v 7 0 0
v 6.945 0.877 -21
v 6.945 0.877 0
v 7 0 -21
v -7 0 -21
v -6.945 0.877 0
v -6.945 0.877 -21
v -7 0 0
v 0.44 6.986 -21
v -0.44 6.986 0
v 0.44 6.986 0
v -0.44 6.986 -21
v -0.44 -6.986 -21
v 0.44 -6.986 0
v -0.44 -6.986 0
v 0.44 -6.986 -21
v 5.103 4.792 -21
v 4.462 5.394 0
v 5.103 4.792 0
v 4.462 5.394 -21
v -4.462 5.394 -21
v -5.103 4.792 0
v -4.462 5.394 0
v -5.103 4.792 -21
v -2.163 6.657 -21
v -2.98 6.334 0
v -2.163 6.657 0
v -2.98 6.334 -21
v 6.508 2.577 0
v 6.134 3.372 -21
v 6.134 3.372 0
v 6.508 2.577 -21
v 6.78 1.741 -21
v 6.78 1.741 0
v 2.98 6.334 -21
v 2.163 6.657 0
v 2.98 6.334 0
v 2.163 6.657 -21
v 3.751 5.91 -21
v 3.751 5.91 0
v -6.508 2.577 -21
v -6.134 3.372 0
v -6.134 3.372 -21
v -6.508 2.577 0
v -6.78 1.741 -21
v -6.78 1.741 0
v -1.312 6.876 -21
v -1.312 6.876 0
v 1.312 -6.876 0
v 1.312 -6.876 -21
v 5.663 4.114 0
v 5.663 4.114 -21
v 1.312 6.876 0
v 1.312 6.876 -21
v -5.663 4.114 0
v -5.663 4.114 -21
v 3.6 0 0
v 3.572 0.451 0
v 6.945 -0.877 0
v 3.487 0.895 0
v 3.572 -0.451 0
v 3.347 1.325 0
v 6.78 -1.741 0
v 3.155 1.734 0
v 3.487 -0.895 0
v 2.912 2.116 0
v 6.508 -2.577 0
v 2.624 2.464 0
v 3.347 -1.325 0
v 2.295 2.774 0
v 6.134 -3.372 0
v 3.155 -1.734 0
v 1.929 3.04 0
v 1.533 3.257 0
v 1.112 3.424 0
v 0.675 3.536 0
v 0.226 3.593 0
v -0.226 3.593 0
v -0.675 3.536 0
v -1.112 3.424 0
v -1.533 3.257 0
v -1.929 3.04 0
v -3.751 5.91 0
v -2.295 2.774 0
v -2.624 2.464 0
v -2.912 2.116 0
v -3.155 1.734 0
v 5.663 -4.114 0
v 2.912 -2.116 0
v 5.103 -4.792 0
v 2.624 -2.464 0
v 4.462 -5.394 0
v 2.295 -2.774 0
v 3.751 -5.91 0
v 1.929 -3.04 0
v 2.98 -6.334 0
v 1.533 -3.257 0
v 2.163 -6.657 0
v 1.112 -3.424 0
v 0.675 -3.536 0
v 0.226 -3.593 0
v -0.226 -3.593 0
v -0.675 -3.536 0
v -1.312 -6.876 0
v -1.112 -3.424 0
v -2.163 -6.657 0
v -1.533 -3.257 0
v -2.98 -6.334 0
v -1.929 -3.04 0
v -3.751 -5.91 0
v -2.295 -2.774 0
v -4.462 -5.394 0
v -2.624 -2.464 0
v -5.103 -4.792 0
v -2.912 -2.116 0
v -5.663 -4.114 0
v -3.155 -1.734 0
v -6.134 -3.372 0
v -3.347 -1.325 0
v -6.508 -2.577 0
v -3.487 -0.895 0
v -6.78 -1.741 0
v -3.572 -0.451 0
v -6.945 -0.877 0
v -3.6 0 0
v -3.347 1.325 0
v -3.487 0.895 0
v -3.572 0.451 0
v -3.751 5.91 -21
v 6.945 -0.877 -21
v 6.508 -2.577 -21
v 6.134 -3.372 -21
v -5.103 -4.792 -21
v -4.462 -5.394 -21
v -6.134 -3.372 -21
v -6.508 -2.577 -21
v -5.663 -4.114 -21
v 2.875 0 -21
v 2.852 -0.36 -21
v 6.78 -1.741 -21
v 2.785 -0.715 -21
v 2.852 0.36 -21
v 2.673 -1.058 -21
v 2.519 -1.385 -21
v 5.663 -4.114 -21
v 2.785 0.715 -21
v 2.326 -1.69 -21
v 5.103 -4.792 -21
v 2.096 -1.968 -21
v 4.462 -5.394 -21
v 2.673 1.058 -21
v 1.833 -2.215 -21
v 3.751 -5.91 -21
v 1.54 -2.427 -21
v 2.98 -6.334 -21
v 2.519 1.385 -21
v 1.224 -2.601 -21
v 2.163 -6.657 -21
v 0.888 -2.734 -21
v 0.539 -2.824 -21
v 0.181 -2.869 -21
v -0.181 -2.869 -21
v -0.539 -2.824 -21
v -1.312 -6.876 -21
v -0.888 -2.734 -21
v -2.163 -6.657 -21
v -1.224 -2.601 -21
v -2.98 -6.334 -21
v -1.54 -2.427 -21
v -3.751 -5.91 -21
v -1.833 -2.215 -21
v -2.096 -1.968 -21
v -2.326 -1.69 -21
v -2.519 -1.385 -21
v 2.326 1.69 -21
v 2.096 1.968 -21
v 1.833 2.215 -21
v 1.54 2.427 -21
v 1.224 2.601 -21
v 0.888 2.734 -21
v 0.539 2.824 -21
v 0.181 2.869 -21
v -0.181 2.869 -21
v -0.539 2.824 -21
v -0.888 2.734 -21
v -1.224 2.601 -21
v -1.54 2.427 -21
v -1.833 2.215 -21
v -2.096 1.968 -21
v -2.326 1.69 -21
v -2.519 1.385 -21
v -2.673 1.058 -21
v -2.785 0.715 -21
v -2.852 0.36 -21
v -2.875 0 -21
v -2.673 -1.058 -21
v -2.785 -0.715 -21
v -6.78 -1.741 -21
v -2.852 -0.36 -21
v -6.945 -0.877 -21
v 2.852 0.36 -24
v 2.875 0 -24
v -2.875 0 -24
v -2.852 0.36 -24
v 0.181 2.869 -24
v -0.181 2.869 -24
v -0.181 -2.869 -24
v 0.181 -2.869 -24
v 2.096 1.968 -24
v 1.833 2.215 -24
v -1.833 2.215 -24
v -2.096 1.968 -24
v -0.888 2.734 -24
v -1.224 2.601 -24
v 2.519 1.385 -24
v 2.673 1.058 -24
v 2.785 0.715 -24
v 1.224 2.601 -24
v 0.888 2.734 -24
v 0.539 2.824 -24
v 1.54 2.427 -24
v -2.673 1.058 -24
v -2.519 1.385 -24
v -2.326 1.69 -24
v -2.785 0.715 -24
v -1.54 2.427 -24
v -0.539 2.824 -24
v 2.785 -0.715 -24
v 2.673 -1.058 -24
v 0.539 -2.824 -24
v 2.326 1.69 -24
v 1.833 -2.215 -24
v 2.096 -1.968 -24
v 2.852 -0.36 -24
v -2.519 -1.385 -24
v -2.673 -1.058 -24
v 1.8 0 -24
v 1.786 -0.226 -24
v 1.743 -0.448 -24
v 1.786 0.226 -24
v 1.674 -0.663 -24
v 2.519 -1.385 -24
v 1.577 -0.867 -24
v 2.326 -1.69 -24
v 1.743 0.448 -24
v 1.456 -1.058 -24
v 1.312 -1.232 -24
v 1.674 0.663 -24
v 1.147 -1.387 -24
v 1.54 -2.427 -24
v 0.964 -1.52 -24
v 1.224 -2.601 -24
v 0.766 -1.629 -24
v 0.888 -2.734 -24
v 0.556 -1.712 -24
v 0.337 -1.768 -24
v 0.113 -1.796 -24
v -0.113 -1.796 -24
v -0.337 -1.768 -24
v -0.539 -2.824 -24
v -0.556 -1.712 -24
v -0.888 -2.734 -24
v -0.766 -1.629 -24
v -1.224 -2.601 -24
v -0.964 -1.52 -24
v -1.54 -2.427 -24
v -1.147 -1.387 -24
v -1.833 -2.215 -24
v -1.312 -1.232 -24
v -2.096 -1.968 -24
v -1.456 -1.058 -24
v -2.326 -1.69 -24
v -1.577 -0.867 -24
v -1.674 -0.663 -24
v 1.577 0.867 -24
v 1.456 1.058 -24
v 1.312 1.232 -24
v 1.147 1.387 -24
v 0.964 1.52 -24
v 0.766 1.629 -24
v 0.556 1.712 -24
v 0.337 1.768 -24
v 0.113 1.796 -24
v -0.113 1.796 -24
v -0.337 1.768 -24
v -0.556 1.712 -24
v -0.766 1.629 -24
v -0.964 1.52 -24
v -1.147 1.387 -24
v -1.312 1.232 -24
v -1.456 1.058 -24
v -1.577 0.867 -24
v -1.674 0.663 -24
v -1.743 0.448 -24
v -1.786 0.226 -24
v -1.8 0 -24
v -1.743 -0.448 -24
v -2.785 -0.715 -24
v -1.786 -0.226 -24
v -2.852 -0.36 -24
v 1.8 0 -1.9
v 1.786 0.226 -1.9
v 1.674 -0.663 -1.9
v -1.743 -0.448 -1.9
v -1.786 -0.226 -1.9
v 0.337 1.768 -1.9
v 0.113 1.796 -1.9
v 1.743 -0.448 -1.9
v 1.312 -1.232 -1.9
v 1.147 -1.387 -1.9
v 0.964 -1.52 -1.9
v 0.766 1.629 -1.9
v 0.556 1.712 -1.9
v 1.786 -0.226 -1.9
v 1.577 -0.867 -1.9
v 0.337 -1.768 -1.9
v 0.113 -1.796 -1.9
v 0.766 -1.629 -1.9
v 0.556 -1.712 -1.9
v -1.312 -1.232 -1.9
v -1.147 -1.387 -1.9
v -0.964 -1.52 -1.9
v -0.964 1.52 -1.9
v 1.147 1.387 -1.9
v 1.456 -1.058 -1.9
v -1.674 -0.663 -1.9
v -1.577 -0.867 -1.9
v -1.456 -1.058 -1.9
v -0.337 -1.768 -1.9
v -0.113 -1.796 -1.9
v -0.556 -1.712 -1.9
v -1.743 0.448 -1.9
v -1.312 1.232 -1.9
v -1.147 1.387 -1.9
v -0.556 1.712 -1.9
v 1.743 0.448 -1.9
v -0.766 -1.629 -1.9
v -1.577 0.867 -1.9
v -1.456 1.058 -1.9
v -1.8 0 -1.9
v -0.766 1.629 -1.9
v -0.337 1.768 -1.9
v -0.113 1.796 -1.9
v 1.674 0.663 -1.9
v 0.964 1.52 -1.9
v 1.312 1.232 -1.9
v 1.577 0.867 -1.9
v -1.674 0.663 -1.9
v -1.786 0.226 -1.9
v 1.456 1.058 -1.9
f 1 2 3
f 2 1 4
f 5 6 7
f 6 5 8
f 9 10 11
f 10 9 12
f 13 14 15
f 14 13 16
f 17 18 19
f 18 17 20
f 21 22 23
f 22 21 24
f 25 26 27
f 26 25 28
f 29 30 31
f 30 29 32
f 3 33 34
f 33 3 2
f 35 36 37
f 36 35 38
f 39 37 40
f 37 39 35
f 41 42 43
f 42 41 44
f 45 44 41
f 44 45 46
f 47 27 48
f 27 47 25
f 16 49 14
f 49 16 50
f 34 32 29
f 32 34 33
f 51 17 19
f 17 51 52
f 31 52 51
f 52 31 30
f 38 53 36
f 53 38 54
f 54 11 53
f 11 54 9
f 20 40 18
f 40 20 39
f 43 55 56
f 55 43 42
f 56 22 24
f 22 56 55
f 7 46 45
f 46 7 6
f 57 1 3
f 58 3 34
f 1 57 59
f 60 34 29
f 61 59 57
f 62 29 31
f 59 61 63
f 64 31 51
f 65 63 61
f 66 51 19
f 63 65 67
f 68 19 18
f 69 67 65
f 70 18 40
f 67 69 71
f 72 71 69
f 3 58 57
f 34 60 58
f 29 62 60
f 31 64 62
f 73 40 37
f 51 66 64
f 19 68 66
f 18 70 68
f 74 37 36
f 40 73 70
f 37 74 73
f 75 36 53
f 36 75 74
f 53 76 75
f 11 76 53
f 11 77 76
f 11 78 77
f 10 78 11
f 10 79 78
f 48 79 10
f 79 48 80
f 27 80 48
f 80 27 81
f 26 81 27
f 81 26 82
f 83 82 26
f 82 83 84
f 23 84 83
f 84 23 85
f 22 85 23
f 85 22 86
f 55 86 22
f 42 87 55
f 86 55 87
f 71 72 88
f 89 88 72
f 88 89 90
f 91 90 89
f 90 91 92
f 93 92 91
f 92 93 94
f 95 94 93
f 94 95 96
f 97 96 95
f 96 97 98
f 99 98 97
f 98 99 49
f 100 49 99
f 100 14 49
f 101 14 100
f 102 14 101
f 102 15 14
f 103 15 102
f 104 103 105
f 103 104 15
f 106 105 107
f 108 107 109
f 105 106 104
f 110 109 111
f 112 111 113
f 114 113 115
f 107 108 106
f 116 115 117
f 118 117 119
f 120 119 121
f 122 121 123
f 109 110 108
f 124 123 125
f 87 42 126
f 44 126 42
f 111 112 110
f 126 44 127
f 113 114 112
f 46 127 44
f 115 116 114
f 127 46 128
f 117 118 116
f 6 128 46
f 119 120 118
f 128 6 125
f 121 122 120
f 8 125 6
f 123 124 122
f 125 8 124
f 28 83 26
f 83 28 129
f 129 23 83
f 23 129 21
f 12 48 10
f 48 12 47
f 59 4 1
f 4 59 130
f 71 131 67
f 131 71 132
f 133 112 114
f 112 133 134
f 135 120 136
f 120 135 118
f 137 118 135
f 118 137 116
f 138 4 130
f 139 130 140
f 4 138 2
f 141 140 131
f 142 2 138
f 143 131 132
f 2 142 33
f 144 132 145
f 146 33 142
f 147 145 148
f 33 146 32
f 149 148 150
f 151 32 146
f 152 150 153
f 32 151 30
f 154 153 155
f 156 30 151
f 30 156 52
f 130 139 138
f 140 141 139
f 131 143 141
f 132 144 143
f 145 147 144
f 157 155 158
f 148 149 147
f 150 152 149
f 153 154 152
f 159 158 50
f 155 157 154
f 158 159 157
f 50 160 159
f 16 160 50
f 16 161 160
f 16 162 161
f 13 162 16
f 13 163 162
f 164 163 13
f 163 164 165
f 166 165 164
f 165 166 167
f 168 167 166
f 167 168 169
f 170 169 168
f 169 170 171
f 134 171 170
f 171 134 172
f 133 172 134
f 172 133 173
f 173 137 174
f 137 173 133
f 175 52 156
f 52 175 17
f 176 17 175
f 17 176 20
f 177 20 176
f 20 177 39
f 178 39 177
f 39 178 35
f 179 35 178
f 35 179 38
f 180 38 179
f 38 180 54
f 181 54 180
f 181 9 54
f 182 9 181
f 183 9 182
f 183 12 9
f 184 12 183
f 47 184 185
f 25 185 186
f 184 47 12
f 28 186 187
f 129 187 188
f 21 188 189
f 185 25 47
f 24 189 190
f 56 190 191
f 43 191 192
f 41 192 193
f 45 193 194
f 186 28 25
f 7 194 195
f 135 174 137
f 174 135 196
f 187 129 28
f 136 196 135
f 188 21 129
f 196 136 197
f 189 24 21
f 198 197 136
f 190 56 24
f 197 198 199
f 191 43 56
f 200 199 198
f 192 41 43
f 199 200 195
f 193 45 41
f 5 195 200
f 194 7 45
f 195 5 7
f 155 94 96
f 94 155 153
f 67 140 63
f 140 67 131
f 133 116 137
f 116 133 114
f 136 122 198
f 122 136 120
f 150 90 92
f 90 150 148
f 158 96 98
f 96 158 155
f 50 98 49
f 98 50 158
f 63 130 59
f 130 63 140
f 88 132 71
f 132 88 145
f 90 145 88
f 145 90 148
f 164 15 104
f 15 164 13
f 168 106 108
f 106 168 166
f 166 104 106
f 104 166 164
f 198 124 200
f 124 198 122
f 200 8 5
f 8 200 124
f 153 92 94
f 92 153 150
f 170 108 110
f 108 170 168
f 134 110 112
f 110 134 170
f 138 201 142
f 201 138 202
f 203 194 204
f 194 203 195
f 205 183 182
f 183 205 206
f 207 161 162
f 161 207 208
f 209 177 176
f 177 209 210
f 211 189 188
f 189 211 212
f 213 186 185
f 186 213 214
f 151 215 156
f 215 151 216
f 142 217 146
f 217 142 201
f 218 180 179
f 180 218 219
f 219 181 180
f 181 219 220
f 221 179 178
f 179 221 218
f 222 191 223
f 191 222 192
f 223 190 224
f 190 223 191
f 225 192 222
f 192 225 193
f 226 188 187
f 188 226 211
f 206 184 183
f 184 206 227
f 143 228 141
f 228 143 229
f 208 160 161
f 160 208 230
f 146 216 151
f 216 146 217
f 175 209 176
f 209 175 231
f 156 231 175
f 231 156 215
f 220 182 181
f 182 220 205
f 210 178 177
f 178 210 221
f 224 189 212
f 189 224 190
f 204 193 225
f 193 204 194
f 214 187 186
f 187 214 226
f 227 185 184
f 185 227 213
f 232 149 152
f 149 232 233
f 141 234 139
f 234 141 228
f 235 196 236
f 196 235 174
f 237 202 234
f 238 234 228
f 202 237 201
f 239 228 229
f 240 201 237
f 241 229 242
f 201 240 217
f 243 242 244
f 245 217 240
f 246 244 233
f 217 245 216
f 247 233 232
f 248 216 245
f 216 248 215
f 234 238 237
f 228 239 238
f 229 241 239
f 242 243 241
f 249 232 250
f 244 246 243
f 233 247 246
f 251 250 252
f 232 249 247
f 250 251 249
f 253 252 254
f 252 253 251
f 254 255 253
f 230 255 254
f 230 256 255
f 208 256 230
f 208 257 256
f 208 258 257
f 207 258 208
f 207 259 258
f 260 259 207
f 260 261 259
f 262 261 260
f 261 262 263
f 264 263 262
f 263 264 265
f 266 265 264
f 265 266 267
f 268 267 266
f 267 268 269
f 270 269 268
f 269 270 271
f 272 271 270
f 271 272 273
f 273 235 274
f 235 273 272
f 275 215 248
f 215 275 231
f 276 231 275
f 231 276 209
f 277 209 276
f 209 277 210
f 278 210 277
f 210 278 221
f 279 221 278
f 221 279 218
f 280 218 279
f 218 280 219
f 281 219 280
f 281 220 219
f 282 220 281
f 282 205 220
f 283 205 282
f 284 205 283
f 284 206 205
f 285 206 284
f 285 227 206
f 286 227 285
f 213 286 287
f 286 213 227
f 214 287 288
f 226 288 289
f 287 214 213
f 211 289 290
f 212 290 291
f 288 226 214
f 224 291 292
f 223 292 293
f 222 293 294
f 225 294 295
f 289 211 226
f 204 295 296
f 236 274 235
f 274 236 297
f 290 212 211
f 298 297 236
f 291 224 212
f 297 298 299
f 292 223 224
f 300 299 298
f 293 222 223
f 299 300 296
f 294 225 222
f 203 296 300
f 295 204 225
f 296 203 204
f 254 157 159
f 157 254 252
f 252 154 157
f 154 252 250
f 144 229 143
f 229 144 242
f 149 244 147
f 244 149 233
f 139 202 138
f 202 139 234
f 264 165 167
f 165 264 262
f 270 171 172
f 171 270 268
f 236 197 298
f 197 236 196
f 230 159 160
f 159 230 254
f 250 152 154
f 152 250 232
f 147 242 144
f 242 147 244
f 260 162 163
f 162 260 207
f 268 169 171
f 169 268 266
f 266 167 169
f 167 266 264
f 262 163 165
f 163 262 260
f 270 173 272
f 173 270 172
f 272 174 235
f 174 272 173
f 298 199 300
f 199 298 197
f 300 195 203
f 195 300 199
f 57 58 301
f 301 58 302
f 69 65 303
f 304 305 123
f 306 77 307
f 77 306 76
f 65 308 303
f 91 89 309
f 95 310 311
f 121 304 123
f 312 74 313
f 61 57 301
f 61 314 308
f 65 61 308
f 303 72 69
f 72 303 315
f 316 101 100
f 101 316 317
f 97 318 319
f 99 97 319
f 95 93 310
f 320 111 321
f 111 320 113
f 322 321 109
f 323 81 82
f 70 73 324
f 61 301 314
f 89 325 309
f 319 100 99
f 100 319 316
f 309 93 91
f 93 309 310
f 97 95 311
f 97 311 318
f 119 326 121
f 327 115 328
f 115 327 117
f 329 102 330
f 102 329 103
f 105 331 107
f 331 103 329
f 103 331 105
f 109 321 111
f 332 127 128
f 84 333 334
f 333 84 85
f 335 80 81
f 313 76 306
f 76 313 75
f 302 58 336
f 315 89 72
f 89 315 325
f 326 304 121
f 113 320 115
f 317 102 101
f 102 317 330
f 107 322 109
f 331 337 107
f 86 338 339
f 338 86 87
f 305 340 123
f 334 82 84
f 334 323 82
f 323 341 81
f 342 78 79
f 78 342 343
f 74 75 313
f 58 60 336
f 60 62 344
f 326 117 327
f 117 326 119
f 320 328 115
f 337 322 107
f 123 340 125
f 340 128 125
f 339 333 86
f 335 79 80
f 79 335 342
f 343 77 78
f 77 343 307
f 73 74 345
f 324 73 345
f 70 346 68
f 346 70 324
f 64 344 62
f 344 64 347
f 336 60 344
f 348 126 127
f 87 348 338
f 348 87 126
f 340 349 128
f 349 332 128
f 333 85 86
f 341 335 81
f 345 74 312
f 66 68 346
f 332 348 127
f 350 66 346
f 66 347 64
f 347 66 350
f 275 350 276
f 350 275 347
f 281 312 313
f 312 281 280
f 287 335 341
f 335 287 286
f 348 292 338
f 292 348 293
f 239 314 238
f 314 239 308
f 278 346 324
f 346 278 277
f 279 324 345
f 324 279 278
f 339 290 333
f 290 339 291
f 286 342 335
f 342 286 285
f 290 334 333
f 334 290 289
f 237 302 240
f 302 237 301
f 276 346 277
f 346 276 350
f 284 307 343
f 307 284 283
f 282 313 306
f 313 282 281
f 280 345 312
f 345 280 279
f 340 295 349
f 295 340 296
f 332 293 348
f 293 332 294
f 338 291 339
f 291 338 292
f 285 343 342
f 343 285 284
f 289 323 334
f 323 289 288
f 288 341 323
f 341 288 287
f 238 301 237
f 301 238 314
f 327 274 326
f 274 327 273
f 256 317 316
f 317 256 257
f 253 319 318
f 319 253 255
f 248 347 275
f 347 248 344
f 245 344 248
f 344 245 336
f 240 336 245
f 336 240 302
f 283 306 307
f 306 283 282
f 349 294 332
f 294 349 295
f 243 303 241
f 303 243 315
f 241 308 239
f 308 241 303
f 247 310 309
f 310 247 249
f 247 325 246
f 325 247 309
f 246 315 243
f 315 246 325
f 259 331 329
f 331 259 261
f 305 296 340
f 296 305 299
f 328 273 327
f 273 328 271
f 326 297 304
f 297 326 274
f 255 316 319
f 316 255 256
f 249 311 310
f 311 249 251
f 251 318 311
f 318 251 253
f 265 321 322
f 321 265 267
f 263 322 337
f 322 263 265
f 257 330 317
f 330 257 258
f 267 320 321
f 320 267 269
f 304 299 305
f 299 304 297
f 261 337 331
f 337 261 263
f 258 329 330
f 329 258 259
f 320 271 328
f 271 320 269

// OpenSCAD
$fn = 50;

difference() {
	union() {
		translate(v = [0, 0, -21.0]) {
			cylinder(h = 21, r = 7.0);
		}
		#translate(v = [0, 0, -24.0]) {
			cylinder(h = 24, r = 2.875);
		}
	}
	union() {
		translate(v = [0, 0, 0]) {
			rotate(a = [0, 0, 0]) {
				difference() {
					union() {
						translate(v = [0, 0, -24.0]) {
							cylinder(h = 24, r = 1.5);
						}
						translate(v = [0, 0, -1.9]) {
							cylinder(h = 1.9, r1 = 1.8, r2 = 3.6);
						}
						translate(v = [0, 0, -24.0]) {
							cylinder(h = 24, r = 1.8);
						}
						translate(v = [0, 0, -24.0]) {
							cylinder(h = 24, r = 1.5);
						}
					}
					union();
				}
			}
		}
	}
}
